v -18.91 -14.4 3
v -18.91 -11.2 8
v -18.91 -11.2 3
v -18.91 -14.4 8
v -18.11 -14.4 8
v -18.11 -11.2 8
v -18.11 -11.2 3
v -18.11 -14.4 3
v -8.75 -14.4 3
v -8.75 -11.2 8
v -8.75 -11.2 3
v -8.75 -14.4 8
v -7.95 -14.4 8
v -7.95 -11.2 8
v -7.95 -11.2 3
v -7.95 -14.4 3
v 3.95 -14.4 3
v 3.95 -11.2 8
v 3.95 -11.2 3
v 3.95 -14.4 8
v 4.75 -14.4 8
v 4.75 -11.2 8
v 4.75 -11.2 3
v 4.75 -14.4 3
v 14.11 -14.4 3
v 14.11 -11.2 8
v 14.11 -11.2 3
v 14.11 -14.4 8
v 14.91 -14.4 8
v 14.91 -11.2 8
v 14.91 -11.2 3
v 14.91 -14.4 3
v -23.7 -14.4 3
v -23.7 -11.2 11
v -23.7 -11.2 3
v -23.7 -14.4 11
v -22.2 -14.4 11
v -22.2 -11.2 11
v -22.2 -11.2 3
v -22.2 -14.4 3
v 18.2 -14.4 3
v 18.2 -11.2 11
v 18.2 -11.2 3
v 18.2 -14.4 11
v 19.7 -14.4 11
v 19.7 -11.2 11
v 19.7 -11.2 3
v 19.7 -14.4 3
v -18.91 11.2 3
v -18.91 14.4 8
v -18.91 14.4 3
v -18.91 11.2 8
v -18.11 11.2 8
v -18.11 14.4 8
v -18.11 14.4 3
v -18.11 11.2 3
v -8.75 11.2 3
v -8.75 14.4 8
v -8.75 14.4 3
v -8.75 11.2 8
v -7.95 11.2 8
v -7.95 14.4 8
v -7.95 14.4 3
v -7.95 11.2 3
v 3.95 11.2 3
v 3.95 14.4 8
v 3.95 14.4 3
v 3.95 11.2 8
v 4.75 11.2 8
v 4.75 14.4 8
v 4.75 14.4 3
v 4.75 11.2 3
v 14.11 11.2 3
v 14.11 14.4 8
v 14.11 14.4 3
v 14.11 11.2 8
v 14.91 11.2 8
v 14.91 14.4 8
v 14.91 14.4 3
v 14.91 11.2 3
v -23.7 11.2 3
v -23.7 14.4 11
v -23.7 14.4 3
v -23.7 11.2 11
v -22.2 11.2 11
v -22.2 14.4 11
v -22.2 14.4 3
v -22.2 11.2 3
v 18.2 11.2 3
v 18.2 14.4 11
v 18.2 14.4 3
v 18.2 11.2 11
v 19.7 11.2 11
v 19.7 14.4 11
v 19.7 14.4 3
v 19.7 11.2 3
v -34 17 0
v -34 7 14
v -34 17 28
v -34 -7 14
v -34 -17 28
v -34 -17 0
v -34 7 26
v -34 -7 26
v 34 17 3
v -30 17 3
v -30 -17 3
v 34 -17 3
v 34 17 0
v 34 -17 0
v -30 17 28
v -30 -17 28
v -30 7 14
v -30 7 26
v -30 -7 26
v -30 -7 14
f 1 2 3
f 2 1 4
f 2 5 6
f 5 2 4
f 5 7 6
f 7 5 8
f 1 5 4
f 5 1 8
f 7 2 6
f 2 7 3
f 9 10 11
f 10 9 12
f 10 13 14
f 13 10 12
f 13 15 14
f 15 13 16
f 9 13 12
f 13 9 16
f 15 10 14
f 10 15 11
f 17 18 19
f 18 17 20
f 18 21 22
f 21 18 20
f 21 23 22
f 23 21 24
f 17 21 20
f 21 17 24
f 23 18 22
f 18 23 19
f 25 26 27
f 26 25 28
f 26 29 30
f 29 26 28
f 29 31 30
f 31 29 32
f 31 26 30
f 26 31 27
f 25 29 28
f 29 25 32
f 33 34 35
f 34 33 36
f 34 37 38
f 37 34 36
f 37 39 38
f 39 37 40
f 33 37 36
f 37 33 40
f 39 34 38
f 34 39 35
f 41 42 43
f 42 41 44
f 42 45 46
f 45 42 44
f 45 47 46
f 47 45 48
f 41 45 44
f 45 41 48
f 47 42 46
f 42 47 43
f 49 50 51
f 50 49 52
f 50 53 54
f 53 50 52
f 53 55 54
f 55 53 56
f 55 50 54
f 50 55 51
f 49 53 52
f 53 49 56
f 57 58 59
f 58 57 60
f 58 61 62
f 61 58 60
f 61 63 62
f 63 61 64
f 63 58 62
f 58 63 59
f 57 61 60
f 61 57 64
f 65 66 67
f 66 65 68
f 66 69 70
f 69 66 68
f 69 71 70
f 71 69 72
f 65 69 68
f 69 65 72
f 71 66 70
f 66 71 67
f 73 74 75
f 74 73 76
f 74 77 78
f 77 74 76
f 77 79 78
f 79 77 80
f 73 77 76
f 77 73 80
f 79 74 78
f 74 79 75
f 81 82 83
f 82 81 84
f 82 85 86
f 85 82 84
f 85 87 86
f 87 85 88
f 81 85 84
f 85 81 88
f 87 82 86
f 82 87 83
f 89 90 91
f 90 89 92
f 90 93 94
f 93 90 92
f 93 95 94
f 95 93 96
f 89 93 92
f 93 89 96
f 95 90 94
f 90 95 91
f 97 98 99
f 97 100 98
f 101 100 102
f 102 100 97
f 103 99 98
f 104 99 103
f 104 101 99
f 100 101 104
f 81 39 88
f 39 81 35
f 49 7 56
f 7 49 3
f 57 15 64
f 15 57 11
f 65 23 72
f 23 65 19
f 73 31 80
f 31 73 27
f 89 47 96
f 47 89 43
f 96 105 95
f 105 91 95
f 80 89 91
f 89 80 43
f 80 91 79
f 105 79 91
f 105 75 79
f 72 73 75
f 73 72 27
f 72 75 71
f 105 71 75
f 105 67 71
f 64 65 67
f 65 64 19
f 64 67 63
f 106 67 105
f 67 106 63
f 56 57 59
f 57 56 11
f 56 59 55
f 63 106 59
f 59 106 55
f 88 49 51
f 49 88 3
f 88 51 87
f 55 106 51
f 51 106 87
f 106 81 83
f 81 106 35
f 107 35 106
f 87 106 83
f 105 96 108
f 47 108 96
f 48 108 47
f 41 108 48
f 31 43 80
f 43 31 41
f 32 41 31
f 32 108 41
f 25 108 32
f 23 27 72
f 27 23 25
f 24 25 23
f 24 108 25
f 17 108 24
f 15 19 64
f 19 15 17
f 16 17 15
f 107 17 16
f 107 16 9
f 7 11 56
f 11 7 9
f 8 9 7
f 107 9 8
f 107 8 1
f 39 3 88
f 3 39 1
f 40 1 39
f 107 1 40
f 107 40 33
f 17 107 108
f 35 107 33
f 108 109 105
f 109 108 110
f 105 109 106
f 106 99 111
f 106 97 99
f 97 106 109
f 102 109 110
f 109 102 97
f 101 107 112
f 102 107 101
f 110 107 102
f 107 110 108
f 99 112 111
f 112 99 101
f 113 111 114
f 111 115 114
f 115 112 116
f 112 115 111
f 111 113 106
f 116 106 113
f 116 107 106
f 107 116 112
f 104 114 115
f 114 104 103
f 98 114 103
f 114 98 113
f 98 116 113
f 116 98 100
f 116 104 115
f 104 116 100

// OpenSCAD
// file: dock_interface.scad
// Shared mechanical receiver envelope for every Braillix dock face.
// Electrical contact hardware is deliberately NOT defined here: the current
// direct-GPIO cell needs an 8-conductor harness, while a future four-contact dock
// requires a local expander and contacts rated for aggregate downstream current.
dock_receiver_w = 10.0;
dock_receiver_h = 8.0;
dock_center_z   = 31.0;
dock_wall_t     = 4.0;
// file: stack_options.scad
// =========================================================
// BRAILLIX COORDINATED STACK OPTIONS
//
// Default exports remain the audited legacy stack. Render the non-destructive
// shaft-preserving candidate with:
//
//   openscad -D stack_repair_raise=4 ...
//
// The 4 mm value is not arbitrary. With the motor mounting face at world z=41,
// the measured Ø9 x 2 mm collar ends at z=43. A 4 mm cam hub seated on that
// collar puts the cam underside at z=47 and its flat surface at z=49: exactly
// 4 mm above the legacy cam-flat datum. Base standoffs, top plate, cell shell,
// and pod therefore move together by the same amount.
//
// This is a candidate until the real cam/linkage/spring and Hall tests pass.
// =========================================================

stack_repair_raise = is_undef(stack_repair_raise) ? 0 : stack_repair_raise;

assert(stack_repair_raise == 0 || stack_repair_raise == 4,
       "stack_repair_raise must be 0 (legacy audit) or 4 (Option A candidate)");

stack_option_a = stack_repair_raise == 4;
// main file
/*
  ESP32 pod header + USB service coupon

  Tests the real raised female-header support geometry, pre-soldered tail space,
  DevKit seating, and USB-C cable access before committing to the full pod shell.
  The female headers and cable are not yet measured, so the full pod stays HOLD.

  Print upright in PETG exactly as exported. Dry-fit both 1x15 headers, the owned
  ESP32, the intended pre-soldered wires, and the actual USB-C plug.
*/

include <esp32_pod_params.scad>

$fn = 40;
coupon_y = 34;
coupon_wall_h = 28;
rib_x = [-6.5, -2.5, 2.5, 6.5];
rib_w = 0.8;
end_t = 1.5;

module coupon_header_decks() {
    for (sy=[-1, 1]) {
        for (rx=rib_x)
            translate([devkit_x_offset + rx*2.54 - rib_w/2,
                       sy*hdr_row_pitch/2 - hdr_cradle_w/2,
                       pod_floor - 0.1])
                cube([rib_w, hdr_cradle_w, hdr_tail_space + 0.1]);

        for (sx=[-1, 1])
            translate([devkit_x_offset + sx*(hdr_cradle_len/2 + end_t/2) - end_t/2,
                       sy*hdr_row_pitch/2 - hdr_cradle_w/2,
                       pod_floor - 0.1])
                cube([end_t, hdr_cradle_w, hdr_tail_space + 3.1]);
    }
}

difference() {
    union() {
        translate([-pod_length/2, -coupon_y/2, 0])
            cube([pod_length, coupon_y, pod_floor]);
        translate([-pod_length/2, -coupon_y/2, 0])
            cube([pod_wall, coupon_y, coupon_wall_h]);
        coupon_header_decks();
    }

    translate([-pod_length/2 - 1, -usb_w/2, usb_z])
        cube([pod_wall + 2, usb_w, usb_h]);
}
